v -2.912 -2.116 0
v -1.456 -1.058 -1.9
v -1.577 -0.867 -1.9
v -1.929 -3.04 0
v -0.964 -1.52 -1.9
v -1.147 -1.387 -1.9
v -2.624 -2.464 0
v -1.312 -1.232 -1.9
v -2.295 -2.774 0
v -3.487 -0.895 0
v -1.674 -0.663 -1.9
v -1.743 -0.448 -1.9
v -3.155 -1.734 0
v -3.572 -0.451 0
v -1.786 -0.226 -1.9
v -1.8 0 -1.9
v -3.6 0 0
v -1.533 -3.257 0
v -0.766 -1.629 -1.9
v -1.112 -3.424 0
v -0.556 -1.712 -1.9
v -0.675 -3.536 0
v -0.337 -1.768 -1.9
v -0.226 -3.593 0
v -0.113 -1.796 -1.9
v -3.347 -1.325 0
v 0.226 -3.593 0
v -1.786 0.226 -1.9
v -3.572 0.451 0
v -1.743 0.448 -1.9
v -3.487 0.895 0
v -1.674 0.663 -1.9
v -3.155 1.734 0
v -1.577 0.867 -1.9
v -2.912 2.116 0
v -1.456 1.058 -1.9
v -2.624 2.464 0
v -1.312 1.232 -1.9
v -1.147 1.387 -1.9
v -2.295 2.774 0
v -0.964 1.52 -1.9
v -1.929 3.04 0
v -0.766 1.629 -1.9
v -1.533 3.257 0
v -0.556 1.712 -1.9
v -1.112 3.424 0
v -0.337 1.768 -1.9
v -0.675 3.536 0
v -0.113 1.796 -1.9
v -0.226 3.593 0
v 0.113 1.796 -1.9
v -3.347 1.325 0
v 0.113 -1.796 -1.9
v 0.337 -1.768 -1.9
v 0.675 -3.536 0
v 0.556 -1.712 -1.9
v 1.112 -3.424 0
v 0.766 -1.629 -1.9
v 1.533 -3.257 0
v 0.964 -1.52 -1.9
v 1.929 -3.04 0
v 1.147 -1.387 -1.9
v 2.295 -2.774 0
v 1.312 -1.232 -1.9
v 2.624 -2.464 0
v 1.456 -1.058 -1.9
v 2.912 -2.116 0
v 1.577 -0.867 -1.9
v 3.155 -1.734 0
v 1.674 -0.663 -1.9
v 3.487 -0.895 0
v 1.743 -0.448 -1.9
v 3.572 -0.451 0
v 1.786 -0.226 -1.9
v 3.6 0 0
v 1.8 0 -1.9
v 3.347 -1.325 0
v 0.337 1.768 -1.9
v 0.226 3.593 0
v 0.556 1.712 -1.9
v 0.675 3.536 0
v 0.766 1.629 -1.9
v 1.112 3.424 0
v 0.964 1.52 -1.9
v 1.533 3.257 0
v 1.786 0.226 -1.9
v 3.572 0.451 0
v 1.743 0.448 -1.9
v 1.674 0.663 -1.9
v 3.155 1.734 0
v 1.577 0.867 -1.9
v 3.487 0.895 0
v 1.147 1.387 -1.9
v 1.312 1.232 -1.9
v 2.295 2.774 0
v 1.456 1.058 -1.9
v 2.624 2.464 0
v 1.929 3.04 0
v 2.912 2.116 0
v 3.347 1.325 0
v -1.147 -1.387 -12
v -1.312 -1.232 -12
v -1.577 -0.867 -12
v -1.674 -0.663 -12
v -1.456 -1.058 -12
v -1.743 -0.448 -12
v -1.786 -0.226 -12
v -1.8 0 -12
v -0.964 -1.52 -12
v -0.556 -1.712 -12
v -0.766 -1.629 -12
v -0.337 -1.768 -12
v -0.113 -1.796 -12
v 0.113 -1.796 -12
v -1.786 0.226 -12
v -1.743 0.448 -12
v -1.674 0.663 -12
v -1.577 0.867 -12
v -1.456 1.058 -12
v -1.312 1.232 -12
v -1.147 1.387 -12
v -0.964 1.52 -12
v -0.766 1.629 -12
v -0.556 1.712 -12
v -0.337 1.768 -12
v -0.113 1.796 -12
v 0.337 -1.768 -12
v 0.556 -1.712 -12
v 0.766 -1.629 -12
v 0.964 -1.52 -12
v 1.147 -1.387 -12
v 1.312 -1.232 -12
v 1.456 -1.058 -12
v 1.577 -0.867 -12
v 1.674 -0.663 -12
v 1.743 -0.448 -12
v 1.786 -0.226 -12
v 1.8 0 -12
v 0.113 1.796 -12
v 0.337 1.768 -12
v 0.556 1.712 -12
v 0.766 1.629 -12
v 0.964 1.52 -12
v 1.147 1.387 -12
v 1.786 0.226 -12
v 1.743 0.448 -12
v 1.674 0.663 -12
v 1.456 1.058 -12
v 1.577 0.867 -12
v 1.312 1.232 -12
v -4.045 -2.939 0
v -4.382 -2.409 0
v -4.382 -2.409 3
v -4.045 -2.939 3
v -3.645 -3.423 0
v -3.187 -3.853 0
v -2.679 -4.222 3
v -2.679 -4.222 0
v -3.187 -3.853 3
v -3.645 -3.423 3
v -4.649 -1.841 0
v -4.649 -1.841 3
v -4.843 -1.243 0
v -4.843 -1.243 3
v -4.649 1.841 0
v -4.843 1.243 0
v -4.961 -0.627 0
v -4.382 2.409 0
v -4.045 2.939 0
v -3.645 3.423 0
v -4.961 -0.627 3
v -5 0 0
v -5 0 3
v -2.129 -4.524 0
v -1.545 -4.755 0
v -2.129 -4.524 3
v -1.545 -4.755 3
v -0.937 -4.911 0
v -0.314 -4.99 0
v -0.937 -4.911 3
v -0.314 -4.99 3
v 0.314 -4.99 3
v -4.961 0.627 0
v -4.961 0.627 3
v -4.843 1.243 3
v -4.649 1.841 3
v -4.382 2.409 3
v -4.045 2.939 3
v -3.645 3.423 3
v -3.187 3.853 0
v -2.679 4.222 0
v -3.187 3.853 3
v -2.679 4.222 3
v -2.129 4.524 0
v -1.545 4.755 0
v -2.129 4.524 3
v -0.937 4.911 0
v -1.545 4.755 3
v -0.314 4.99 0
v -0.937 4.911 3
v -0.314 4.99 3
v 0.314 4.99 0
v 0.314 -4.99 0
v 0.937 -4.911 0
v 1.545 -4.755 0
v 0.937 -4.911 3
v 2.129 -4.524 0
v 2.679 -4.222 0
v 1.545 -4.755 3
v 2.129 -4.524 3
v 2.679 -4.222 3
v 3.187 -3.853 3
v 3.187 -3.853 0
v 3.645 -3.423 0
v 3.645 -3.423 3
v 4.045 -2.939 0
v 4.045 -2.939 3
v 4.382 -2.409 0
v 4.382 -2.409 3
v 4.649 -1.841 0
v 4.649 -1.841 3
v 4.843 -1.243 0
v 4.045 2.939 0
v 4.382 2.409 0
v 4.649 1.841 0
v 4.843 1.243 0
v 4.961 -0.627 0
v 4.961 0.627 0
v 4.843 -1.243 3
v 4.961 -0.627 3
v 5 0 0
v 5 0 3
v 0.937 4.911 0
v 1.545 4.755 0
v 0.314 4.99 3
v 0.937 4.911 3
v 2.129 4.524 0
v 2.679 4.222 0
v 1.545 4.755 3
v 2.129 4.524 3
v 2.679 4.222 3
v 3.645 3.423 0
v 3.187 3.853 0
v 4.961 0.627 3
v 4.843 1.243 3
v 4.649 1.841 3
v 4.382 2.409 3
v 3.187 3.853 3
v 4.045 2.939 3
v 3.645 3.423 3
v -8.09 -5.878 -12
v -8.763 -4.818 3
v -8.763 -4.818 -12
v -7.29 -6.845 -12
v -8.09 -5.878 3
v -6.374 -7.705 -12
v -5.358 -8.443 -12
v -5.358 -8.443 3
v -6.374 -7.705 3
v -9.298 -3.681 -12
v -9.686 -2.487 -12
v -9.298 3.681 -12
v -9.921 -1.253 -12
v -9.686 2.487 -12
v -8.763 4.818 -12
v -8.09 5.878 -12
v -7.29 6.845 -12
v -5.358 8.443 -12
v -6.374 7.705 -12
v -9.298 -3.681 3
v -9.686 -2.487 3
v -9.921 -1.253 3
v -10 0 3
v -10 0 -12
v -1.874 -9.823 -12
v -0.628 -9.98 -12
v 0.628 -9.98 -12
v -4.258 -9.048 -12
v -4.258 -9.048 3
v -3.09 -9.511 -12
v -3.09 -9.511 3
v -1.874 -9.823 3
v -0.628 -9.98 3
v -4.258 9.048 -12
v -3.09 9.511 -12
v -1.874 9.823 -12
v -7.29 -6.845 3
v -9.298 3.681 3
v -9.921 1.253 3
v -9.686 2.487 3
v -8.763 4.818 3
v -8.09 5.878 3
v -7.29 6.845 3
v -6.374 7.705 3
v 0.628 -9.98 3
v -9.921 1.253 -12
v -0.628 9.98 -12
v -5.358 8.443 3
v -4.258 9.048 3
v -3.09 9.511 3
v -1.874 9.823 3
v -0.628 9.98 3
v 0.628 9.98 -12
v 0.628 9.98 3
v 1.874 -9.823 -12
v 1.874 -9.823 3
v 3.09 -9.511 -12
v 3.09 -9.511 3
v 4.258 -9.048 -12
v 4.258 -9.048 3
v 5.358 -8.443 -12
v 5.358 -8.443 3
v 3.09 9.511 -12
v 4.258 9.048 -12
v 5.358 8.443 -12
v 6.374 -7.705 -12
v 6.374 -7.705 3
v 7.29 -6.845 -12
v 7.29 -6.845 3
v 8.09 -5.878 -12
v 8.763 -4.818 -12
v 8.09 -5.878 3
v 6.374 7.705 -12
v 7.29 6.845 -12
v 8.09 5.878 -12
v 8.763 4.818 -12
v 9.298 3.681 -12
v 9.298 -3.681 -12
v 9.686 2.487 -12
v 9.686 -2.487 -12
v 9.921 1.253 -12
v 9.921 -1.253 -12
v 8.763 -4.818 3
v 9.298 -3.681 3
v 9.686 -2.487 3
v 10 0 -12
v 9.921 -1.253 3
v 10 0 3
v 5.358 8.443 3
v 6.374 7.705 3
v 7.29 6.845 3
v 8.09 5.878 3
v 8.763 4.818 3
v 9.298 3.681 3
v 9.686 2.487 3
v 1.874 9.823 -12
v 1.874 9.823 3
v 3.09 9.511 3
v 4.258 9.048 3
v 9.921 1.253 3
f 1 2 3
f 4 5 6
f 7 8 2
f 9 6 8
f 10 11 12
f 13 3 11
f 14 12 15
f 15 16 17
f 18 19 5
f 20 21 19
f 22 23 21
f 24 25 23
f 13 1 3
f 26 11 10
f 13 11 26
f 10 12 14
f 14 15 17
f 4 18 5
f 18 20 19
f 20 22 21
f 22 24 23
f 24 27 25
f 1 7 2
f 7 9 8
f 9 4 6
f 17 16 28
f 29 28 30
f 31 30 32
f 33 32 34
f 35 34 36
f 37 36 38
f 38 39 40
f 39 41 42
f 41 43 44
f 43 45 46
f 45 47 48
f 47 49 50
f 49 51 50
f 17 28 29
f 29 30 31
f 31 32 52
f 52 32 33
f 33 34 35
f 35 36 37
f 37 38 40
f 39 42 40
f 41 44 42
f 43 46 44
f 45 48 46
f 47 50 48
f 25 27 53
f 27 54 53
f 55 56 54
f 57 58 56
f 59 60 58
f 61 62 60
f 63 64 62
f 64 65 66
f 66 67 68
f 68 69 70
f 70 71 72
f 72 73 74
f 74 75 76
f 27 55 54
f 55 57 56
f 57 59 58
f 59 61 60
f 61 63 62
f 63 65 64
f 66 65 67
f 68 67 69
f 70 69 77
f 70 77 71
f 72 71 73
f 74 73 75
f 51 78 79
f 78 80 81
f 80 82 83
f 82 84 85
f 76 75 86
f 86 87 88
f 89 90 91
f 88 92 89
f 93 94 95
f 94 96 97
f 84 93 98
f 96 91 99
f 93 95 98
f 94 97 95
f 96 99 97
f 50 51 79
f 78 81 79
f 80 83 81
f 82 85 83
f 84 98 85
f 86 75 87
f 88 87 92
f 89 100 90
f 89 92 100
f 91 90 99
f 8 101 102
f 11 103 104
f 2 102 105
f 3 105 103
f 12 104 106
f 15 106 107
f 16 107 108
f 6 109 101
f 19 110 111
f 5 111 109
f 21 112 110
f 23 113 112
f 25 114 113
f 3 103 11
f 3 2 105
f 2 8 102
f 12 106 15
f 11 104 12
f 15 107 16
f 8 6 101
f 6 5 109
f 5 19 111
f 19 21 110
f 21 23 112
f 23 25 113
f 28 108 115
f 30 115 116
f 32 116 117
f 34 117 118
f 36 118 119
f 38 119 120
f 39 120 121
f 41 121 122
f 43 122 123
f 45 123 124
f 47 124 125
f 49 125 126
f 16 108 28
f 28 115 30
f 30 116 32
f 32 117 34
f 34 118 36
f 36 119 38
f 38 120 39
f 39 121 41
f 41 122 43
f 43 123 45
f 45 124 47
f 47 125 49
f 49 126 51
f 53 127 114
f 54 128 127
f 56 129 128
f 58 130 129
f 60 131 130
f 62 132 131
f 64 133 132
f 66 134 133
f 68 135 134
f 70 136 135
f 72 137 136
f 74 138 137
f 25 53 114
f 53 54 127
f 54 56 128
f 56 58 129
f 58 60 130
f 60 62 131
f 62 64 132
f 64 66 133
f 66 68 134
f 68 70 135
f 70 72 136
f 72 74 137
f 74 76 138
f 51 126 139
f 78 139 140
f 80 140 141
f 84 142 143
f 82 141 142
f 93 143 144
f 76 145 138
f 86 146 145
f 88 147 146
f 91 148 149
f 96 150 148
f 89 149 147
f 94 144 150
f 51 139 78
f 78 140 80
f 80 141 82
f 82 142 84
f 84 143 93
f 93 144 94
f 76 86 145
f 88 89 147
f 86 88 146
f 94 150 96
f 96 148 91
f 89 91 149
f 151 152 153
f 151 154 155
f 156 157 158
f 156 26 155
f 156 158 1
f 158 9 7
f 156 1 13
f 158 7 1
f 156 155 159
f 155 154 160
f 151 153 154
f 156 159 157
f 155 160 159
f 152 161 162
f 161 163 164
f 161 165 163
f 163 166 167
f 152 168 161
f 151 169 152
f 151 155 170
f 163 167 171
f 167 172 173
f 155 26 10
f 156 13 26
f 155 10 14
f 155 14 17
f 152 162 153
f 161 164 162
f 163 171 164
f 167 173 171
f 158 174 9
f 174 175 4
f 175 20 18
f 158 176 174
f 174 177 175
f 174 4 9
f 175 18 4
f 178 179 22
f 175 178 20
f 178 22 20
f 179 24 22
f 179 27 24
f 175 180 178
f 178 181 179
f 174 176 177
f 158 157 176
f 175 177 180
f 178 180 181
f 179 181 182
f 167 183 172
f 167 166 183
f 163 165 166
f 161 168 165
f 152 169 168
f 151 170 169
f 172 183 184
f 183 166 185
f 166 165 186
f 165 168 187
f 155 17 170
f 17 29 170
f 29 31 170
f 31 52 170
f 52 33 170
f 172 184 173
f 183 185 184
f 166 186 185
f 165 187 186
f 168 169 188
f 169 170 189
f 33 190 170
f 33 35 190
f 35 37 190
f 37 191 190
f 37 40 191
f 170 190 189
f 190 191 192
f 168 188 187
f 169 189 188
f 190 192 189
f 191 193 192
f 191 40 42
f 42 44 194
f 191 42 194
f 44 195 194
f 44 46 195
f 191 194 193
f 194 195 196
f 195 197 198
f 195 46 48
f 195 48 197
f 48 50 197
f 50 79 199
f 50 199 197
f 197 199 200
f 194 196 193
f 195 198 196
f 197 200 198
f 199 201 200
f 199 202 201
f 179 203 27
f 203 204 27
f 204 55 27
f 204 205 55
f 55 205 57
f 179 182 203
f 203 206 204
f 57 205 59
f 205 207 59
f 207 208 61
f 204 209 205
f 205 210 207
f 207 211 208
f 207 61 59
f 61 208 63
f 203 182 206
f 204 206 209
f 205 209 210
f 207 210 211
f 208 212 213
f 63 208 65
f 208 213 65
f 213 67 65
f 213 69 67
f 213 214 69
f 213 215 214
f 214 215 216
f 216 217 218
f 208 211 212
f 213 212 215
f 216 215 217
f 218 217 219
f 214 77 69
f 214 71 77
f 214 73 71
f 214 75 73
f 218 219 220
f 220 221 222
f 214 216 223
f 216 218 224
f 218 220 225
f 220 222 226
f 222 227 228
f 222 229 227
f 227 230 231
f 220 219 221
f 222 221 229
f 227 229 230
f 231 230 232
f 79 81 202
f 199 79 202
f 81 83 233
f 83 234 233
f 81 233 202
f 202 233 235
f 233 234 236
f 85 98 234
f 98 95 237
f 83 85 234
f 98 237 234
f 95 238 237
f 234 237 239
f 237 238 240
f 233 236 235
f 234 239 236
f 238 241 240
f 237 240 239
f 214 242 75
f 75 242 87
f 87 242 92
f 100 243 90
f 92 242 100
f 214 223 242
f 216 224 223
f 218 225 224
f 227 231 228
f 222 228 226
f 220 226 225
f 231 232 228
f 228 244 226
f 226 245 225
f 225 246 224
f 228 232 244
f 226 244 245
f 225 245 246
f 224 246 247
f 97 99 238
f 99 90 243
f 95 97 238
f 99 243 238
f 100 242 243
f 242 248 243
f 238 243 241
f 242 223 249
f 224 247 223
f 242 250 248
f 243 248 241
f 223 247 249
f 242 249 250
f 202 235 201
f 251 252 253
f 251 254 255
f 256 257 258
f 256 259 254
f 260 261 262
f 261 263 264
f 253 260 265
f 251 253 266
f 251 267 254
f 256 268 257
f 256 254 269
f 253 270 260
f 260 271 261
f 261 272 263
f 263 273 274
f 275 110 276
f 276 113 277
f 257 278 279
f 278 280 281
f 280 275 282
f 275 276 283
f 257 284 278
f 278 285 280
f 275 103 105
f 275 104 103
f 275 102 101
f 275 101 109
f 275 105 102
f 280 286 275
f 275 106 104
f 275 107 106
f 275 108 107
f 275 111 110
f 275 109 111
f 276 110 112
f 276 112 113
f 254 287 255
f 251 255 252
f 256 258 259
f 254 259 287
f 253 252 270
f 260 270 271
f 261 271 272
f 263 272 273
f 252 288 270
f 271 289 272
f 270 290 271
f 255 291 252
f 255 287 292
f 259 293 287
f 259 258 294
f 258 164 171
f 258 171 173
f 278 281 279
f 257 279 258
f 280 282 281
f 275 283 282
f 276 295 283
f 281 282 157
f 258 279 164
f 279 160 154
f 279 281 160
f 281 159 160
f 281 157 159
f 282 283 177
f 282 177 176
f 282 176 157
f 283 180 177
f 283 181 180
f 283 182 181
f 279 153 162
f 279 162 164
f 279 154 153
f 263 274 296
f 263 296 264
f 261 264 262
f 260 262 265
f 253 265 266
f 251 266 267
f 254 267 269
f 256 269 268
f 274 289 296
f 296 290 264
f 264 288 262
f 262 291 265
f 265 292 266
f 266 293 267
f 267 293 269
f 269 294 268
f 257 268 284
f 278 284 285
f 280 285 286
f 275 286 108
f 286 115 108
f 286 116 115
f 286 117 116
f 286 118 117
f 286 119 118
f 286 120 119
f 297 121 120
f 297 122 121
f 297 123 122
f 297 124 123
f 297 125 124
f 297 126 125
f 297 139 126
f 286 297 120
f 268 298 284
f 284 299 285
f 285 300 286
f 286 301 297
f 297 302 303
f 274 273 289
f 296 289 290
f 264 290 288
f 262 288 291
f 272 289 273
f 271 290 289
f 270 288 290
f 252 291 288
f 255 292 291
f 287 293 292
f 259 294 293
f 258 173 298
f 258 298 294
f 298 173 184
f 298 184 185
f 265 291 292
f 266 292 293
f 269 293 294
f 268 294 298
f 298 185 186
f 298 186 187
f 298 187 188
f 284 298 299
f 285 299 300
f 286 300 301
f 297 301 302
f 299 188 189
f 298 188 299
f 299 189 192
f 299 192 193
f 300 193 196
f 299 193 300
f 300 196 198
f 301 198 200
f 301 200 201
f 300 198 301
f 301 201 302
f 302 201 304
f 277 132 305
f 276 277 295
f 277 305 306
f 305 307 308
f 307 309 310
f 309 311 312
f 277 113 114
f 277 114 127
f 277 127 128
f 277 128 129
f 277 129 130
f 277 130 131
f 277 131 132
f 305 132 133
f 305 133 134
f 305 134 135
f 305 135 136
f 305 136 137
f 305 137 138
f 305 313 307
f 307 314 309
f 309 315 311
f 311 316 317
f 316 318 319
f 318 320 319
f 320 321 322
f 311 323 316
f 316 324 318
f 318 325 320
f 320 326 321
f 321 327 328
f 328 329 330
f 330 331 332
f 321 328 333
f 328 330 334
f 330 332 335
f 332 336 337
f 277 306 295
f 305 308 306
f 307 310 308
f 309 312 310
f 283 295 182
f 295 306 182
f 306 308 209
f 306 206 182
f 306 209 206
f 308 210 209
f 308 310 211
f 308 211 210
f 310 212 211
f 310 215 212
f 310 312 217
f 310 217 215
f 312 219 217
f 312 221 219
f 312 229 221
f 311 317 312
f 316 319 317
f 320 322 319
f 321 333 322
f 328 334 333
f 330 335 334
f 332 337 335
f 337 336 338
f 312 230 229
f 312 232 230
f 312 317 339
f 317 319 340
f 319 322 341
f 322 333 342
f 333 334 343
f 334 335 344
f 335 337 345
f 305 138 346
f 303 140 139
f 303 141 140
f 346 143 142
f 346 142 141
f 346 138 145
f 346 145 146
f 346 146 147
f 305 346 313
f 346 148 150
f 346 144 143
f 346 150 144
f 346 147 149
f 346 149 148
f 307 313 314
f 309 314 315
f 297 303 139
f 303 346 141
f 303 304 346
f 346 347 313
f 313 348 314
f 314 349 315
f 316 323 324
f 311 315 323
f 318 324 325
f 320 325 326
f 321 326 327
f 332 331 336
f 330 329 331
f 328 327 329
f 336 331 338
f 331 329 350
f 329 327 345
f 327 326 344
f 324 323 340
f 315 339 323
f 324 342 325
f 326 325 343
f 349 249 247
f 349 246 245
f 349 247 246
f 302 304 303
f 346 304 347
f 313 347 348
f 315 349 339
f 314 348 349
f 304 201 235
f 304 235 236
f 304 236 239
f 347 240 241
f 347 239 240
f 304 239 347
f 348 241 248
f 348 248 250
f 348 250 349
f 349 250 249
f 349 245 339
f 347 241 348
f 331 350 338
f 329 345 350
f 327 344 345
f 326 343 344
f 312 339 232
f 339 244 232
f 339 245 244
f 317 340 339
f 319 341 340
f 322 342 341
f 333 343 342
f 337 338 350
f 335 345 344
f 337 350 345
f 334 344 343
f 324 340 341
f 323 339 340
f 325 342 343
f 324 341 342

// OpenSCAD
$fn = 50;


difference() {
	union() {
		translate(v = [0, 0, -12.0000000000]) {
			cylinder(h = 15, r = 10.0000000000);
		}
	}
	union() {
		translate(v = [0, 0, 0]) {
			rotate(a = [0, 0, 0]) {
				difference() {
					union() {
						translate(v = [0, 0, -15.0000000000]) {
							cylinder(h = 15, r = 1.5000000000);
						}
						translate(v = [0, 0, -1.9000000000]) {
							cylinder(h = 1.9000000000, r1 = 1.8000000000, r2 = 3.6000000000);
						}
						translate(v = [0, 0, -15.0000000000]) {
							cylinder(h = 15, r = 1.8000000000);
						}
						translate(v = [0, 0, -15.0000000000]) {
							cylinder(h = 15, r = 1.5000000000);
						}
					}
					union();
				}
			}
		}
		#cylinder(h = 3, r = 5.0000000000);
	}
}
